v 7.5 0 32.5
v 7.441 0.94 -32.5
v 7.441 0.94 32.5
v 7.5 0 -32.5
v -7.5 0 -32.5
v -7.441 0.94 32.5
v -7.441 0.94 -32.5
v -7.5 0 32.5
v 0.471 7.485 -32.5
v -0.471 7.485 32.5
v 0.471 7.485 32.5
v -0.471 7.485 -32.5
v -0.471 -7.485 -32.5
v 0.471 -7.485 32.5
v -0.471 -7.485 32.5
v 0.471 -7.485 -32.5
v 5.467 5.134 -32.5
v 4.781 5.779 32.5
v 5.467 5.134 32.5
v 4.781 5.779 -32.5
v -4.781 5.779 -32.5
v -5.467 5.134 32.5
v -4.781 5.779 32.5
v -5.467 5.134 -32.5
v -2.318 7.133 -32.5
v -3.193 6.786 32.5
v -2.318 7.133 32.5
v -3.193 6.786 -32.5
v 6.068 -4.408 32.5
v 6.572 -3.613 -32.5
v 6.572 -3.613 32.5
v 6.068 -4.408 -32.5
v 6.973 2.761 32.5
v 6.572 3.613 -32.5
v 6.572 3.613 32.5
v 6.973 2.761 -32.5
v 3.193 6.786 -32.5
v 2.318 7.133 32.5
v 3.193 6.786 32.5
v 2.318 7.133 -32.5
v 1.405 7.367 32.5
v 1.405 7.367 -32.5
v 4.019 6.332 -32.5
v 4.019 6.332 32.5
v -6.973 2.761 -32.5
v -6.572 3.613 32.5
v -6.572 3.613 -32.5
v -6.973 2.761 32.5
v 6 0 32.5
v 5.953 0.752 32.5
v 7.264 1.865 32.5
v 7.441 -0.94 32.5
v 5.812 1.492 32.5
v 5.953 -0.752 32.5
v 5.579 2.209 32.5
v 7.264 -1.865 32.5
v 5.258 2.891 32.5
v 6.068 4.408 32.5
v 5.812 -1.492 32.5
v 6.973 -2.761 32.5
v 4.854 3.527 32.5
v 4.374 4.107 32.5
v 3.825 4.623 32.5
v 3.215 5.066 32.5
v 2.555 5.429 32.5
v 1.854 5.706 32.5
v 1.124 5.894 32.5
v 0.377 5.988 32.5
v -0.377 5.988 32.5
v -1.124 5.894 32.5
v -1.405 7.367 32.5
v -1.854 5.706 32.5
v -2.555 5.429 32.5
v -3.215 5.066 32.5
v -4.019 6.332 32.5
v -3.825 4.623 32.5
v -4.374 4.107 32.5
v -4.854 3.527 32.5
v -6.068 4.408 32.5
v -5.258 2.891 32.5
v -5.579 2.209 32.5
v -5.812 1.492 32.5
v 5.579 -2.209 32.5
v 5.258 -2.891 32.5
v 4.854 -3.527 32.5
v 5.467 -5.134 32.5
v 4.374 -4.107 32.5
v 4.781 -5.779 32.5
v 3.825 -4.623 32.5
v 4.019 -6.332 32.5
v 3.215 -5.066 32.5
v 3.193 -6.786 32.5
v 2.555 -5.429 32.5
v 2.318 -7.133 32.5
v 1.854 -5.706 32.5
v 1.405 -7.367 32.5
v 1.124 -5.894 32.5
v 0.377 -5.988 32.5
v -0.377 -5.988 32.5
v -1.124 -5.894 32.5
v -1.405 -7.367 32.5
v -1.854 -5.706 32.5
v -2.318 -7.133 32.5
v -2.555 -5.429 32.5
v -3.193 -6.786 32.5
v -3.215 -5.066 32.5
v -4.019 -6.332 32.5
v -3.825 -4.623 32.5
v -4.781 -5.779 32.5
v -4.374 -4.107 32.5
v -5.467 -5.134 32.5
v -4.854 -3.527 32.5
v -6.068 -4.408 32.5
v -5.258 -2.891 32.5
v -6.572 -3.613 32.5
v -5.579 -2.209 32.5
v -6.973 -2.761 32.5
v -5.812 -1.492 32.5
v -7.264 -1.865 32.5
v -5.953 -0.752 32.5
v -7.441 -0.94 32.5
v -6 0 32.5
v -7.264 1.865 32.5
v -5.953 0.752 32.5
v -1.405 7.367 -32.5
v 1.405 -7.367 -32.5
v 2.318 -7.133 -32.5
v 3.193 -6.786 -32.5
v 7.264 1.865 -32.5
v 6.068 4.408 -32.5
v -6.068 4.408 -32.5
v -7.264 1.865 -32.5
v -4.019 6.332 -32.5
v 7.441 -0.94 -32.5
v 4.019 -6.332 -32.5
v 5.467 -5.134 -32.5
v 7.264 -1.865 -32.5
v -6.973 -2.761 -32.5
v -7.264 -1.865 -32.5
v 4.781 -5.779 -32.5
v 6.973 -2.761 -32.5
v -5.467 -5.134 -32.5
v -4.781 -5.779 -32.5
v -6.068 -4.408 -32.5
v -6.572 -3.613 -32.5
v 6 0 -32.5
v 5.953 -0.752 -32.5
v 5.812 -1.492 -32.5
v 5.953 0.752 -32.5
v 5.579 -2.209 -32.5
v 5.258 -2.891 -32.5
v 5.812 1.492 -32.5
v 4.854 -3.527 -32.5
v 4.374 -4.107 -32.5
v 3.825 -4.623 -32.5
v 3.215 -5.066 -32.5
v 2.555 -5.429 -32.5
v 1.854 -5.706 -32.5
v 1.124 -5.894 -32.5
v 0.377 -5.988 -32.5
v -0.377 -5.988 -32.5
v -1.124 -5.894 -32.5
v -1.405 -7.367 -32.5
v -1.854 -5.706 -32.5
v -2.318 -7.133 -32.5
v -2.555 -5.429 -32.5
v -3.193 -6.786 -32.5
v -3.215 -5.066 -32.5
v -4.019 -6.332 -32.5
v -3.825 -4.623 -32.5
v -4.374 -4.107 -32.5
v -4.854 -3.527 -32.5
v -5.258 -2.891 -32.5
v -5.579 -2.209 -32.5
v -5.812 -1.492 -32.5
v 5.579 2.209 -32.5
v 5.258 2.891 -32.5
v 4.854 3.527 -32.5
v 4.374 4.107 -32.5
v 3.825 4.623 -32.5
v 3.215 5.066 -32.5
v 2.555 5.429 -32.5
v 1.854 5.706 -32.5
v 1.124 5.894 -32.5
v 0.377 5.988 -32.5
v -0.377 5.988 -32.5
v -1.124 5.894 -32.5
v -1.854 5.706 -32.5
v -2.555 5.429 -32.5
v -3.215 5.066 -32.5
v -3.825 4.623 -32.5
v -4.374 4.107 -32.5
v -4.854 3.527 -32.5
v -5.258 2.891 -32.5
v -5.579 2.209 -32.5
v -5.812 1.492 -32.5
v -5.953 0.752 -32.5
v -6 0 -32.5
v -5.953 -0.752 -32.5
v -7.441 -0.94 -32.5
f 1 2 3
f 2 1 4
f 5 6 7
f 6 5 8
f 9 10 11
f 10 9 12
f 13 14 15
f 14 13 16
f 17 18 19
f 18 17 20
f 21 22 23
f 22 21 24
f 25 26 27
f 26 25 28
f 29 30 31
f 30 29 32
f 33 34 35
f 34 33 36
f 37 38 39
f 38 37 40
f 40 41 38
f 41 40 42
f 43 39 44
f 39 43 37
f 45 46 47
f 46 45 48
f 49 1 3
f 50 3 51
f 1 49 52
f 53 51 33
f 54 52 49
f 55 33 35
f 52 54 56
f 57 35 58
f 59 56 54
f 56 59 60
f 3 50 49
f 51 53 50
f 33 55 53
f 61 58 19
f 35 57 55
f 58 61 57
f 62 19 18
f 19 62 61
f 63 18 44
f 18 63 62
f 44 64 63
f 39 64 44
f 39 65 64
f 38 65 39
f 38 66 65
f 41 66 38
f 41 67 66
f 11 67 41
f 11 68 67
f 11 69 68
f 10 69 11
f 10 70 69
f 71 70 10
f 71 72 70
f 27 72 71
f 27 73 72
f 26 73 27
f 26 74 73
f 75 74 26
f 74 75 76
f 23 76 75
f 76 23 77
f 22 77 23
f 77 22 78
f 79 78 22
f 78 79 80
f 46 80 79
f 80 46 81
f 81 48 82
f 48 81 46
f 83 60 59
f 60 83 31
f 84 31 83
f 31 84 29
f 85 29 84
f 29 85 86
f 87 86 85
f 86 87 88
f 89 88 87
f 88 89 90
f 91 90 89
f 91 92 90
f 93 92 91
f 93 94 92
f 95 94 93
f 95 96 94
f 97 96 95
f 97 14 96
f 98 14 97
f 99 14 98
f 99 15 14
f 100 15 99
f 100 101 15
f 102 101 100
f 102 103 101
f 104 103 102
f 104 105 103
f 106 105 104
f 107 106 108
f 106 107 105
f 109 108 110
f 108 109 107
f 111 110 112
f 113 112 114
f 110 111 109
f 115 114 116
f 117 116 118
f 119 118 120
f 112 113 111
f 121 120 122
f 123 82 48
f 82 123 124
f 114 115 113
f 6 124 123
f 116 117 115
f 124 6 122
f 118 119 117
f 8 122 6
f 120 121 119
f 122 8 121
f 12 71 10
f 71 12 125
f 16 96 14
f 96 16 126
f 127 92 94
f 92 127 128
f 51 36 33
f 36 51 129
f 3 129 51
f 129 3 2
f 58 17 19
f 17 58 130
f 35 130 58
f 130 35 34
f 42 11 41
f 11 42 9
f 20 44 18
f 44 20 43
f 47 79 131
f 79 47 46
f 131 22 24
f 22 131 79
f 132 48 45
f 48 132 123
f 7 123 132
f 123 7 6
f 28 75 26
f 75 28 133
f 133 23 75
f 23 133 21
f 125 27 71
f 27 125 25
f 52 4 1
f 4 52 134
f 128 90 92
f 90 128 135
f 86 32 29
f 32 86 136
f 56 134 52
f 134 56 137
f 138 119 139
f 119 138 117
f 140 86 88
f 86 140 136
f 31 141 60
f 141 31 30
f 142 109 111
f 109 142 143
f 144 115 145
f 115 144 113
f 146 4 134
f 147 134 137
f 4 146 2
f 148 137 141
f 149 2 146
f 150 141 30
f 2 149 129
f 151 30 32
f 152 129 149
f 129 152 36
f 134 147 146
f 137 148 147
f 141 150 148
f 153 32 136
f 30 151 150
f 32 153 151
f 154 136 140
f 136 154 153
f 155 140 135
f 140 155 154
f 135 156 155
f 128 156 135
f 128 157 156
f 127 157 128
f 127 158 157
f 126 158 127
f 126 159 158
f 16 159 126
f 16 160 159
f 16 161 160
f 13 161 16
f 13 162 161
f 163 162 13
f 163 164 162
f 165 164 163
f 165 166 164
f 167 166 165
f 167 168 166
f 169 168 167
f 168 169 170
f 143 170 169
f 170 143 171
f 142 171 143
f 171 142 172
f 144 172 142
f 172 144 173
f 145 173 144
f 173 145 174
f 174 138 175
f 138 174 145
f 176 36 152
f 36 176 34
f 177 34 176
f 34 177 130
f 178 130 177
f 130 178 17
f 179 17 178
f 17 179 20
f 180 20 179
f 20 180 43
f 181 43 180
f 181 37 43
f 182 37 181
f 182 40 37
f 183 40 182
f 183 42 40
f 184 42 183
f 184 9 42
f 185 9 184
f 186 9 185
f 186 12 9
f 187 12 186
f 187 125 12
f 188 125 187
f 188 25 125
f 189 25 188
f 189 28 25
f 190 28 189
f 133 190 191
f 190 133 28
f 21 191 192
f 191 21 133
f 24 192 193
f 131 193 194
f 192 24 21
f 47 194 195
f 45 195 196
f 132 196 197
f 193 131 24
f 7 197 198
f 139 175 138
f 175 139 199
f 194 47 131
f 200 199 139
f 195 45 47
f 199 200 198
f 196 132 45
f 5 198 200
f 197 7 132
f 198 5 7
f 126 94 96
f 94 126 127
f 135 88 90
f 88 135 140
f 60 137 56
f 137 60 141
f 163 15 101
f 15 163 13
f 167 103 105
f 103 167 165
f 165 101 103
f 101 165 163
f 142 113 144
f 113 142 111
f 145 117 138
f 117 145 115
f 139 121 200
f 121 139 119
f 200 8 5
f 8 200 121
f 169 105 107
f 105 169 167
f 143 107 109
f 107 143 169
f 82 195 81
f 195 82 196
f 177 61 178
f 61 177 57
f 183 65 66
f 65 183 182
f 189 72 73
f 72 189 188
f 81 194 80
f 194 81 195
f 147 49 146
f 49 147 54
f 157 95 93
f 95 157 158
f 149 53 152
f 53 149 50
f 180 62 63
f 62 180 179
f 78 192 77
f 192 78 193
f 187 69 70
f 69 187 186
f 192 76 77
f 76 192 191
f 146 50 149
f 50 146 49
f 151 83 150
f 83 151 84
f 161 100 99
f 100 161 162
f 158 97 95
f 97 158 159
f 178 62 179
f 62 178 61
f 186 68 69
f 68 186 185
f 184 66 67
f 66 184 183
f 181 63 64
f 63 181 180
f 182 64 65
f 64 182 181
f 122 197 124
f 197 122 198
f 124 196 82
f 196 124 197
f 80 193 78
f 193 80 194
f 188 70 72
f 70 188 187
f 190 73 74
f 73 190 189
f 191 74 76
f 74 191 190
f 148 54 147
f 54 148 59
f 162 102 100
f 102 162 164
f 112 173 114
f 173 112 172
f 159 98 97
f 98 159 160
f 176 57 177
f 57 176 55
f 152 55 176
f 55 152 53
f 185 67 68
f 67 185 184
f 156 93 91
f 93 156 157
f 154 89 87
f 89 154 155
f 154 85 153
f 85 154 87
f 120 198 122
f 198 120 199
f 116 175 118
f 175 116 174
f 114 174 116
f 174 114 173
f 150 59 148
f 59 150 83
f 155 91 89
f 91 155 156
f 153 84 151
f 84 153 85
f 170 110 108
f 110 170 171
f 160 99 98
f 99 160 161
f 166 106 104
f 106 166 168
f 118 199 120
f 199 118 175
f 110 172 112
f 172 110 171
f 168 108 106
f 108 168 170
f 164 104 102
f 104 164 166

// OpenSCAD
$fn = 50;


difference() {
	union() {
		translate(v = [0, 0, -32.5000000000]) {
			cylinder(h = 65, r = 7.5000000000);
		}
	}
	union() {
		translate(v = [0, 0, -100.0000000000]) {
			cylinder(h = 200, r = 6);
		}
	}
}
